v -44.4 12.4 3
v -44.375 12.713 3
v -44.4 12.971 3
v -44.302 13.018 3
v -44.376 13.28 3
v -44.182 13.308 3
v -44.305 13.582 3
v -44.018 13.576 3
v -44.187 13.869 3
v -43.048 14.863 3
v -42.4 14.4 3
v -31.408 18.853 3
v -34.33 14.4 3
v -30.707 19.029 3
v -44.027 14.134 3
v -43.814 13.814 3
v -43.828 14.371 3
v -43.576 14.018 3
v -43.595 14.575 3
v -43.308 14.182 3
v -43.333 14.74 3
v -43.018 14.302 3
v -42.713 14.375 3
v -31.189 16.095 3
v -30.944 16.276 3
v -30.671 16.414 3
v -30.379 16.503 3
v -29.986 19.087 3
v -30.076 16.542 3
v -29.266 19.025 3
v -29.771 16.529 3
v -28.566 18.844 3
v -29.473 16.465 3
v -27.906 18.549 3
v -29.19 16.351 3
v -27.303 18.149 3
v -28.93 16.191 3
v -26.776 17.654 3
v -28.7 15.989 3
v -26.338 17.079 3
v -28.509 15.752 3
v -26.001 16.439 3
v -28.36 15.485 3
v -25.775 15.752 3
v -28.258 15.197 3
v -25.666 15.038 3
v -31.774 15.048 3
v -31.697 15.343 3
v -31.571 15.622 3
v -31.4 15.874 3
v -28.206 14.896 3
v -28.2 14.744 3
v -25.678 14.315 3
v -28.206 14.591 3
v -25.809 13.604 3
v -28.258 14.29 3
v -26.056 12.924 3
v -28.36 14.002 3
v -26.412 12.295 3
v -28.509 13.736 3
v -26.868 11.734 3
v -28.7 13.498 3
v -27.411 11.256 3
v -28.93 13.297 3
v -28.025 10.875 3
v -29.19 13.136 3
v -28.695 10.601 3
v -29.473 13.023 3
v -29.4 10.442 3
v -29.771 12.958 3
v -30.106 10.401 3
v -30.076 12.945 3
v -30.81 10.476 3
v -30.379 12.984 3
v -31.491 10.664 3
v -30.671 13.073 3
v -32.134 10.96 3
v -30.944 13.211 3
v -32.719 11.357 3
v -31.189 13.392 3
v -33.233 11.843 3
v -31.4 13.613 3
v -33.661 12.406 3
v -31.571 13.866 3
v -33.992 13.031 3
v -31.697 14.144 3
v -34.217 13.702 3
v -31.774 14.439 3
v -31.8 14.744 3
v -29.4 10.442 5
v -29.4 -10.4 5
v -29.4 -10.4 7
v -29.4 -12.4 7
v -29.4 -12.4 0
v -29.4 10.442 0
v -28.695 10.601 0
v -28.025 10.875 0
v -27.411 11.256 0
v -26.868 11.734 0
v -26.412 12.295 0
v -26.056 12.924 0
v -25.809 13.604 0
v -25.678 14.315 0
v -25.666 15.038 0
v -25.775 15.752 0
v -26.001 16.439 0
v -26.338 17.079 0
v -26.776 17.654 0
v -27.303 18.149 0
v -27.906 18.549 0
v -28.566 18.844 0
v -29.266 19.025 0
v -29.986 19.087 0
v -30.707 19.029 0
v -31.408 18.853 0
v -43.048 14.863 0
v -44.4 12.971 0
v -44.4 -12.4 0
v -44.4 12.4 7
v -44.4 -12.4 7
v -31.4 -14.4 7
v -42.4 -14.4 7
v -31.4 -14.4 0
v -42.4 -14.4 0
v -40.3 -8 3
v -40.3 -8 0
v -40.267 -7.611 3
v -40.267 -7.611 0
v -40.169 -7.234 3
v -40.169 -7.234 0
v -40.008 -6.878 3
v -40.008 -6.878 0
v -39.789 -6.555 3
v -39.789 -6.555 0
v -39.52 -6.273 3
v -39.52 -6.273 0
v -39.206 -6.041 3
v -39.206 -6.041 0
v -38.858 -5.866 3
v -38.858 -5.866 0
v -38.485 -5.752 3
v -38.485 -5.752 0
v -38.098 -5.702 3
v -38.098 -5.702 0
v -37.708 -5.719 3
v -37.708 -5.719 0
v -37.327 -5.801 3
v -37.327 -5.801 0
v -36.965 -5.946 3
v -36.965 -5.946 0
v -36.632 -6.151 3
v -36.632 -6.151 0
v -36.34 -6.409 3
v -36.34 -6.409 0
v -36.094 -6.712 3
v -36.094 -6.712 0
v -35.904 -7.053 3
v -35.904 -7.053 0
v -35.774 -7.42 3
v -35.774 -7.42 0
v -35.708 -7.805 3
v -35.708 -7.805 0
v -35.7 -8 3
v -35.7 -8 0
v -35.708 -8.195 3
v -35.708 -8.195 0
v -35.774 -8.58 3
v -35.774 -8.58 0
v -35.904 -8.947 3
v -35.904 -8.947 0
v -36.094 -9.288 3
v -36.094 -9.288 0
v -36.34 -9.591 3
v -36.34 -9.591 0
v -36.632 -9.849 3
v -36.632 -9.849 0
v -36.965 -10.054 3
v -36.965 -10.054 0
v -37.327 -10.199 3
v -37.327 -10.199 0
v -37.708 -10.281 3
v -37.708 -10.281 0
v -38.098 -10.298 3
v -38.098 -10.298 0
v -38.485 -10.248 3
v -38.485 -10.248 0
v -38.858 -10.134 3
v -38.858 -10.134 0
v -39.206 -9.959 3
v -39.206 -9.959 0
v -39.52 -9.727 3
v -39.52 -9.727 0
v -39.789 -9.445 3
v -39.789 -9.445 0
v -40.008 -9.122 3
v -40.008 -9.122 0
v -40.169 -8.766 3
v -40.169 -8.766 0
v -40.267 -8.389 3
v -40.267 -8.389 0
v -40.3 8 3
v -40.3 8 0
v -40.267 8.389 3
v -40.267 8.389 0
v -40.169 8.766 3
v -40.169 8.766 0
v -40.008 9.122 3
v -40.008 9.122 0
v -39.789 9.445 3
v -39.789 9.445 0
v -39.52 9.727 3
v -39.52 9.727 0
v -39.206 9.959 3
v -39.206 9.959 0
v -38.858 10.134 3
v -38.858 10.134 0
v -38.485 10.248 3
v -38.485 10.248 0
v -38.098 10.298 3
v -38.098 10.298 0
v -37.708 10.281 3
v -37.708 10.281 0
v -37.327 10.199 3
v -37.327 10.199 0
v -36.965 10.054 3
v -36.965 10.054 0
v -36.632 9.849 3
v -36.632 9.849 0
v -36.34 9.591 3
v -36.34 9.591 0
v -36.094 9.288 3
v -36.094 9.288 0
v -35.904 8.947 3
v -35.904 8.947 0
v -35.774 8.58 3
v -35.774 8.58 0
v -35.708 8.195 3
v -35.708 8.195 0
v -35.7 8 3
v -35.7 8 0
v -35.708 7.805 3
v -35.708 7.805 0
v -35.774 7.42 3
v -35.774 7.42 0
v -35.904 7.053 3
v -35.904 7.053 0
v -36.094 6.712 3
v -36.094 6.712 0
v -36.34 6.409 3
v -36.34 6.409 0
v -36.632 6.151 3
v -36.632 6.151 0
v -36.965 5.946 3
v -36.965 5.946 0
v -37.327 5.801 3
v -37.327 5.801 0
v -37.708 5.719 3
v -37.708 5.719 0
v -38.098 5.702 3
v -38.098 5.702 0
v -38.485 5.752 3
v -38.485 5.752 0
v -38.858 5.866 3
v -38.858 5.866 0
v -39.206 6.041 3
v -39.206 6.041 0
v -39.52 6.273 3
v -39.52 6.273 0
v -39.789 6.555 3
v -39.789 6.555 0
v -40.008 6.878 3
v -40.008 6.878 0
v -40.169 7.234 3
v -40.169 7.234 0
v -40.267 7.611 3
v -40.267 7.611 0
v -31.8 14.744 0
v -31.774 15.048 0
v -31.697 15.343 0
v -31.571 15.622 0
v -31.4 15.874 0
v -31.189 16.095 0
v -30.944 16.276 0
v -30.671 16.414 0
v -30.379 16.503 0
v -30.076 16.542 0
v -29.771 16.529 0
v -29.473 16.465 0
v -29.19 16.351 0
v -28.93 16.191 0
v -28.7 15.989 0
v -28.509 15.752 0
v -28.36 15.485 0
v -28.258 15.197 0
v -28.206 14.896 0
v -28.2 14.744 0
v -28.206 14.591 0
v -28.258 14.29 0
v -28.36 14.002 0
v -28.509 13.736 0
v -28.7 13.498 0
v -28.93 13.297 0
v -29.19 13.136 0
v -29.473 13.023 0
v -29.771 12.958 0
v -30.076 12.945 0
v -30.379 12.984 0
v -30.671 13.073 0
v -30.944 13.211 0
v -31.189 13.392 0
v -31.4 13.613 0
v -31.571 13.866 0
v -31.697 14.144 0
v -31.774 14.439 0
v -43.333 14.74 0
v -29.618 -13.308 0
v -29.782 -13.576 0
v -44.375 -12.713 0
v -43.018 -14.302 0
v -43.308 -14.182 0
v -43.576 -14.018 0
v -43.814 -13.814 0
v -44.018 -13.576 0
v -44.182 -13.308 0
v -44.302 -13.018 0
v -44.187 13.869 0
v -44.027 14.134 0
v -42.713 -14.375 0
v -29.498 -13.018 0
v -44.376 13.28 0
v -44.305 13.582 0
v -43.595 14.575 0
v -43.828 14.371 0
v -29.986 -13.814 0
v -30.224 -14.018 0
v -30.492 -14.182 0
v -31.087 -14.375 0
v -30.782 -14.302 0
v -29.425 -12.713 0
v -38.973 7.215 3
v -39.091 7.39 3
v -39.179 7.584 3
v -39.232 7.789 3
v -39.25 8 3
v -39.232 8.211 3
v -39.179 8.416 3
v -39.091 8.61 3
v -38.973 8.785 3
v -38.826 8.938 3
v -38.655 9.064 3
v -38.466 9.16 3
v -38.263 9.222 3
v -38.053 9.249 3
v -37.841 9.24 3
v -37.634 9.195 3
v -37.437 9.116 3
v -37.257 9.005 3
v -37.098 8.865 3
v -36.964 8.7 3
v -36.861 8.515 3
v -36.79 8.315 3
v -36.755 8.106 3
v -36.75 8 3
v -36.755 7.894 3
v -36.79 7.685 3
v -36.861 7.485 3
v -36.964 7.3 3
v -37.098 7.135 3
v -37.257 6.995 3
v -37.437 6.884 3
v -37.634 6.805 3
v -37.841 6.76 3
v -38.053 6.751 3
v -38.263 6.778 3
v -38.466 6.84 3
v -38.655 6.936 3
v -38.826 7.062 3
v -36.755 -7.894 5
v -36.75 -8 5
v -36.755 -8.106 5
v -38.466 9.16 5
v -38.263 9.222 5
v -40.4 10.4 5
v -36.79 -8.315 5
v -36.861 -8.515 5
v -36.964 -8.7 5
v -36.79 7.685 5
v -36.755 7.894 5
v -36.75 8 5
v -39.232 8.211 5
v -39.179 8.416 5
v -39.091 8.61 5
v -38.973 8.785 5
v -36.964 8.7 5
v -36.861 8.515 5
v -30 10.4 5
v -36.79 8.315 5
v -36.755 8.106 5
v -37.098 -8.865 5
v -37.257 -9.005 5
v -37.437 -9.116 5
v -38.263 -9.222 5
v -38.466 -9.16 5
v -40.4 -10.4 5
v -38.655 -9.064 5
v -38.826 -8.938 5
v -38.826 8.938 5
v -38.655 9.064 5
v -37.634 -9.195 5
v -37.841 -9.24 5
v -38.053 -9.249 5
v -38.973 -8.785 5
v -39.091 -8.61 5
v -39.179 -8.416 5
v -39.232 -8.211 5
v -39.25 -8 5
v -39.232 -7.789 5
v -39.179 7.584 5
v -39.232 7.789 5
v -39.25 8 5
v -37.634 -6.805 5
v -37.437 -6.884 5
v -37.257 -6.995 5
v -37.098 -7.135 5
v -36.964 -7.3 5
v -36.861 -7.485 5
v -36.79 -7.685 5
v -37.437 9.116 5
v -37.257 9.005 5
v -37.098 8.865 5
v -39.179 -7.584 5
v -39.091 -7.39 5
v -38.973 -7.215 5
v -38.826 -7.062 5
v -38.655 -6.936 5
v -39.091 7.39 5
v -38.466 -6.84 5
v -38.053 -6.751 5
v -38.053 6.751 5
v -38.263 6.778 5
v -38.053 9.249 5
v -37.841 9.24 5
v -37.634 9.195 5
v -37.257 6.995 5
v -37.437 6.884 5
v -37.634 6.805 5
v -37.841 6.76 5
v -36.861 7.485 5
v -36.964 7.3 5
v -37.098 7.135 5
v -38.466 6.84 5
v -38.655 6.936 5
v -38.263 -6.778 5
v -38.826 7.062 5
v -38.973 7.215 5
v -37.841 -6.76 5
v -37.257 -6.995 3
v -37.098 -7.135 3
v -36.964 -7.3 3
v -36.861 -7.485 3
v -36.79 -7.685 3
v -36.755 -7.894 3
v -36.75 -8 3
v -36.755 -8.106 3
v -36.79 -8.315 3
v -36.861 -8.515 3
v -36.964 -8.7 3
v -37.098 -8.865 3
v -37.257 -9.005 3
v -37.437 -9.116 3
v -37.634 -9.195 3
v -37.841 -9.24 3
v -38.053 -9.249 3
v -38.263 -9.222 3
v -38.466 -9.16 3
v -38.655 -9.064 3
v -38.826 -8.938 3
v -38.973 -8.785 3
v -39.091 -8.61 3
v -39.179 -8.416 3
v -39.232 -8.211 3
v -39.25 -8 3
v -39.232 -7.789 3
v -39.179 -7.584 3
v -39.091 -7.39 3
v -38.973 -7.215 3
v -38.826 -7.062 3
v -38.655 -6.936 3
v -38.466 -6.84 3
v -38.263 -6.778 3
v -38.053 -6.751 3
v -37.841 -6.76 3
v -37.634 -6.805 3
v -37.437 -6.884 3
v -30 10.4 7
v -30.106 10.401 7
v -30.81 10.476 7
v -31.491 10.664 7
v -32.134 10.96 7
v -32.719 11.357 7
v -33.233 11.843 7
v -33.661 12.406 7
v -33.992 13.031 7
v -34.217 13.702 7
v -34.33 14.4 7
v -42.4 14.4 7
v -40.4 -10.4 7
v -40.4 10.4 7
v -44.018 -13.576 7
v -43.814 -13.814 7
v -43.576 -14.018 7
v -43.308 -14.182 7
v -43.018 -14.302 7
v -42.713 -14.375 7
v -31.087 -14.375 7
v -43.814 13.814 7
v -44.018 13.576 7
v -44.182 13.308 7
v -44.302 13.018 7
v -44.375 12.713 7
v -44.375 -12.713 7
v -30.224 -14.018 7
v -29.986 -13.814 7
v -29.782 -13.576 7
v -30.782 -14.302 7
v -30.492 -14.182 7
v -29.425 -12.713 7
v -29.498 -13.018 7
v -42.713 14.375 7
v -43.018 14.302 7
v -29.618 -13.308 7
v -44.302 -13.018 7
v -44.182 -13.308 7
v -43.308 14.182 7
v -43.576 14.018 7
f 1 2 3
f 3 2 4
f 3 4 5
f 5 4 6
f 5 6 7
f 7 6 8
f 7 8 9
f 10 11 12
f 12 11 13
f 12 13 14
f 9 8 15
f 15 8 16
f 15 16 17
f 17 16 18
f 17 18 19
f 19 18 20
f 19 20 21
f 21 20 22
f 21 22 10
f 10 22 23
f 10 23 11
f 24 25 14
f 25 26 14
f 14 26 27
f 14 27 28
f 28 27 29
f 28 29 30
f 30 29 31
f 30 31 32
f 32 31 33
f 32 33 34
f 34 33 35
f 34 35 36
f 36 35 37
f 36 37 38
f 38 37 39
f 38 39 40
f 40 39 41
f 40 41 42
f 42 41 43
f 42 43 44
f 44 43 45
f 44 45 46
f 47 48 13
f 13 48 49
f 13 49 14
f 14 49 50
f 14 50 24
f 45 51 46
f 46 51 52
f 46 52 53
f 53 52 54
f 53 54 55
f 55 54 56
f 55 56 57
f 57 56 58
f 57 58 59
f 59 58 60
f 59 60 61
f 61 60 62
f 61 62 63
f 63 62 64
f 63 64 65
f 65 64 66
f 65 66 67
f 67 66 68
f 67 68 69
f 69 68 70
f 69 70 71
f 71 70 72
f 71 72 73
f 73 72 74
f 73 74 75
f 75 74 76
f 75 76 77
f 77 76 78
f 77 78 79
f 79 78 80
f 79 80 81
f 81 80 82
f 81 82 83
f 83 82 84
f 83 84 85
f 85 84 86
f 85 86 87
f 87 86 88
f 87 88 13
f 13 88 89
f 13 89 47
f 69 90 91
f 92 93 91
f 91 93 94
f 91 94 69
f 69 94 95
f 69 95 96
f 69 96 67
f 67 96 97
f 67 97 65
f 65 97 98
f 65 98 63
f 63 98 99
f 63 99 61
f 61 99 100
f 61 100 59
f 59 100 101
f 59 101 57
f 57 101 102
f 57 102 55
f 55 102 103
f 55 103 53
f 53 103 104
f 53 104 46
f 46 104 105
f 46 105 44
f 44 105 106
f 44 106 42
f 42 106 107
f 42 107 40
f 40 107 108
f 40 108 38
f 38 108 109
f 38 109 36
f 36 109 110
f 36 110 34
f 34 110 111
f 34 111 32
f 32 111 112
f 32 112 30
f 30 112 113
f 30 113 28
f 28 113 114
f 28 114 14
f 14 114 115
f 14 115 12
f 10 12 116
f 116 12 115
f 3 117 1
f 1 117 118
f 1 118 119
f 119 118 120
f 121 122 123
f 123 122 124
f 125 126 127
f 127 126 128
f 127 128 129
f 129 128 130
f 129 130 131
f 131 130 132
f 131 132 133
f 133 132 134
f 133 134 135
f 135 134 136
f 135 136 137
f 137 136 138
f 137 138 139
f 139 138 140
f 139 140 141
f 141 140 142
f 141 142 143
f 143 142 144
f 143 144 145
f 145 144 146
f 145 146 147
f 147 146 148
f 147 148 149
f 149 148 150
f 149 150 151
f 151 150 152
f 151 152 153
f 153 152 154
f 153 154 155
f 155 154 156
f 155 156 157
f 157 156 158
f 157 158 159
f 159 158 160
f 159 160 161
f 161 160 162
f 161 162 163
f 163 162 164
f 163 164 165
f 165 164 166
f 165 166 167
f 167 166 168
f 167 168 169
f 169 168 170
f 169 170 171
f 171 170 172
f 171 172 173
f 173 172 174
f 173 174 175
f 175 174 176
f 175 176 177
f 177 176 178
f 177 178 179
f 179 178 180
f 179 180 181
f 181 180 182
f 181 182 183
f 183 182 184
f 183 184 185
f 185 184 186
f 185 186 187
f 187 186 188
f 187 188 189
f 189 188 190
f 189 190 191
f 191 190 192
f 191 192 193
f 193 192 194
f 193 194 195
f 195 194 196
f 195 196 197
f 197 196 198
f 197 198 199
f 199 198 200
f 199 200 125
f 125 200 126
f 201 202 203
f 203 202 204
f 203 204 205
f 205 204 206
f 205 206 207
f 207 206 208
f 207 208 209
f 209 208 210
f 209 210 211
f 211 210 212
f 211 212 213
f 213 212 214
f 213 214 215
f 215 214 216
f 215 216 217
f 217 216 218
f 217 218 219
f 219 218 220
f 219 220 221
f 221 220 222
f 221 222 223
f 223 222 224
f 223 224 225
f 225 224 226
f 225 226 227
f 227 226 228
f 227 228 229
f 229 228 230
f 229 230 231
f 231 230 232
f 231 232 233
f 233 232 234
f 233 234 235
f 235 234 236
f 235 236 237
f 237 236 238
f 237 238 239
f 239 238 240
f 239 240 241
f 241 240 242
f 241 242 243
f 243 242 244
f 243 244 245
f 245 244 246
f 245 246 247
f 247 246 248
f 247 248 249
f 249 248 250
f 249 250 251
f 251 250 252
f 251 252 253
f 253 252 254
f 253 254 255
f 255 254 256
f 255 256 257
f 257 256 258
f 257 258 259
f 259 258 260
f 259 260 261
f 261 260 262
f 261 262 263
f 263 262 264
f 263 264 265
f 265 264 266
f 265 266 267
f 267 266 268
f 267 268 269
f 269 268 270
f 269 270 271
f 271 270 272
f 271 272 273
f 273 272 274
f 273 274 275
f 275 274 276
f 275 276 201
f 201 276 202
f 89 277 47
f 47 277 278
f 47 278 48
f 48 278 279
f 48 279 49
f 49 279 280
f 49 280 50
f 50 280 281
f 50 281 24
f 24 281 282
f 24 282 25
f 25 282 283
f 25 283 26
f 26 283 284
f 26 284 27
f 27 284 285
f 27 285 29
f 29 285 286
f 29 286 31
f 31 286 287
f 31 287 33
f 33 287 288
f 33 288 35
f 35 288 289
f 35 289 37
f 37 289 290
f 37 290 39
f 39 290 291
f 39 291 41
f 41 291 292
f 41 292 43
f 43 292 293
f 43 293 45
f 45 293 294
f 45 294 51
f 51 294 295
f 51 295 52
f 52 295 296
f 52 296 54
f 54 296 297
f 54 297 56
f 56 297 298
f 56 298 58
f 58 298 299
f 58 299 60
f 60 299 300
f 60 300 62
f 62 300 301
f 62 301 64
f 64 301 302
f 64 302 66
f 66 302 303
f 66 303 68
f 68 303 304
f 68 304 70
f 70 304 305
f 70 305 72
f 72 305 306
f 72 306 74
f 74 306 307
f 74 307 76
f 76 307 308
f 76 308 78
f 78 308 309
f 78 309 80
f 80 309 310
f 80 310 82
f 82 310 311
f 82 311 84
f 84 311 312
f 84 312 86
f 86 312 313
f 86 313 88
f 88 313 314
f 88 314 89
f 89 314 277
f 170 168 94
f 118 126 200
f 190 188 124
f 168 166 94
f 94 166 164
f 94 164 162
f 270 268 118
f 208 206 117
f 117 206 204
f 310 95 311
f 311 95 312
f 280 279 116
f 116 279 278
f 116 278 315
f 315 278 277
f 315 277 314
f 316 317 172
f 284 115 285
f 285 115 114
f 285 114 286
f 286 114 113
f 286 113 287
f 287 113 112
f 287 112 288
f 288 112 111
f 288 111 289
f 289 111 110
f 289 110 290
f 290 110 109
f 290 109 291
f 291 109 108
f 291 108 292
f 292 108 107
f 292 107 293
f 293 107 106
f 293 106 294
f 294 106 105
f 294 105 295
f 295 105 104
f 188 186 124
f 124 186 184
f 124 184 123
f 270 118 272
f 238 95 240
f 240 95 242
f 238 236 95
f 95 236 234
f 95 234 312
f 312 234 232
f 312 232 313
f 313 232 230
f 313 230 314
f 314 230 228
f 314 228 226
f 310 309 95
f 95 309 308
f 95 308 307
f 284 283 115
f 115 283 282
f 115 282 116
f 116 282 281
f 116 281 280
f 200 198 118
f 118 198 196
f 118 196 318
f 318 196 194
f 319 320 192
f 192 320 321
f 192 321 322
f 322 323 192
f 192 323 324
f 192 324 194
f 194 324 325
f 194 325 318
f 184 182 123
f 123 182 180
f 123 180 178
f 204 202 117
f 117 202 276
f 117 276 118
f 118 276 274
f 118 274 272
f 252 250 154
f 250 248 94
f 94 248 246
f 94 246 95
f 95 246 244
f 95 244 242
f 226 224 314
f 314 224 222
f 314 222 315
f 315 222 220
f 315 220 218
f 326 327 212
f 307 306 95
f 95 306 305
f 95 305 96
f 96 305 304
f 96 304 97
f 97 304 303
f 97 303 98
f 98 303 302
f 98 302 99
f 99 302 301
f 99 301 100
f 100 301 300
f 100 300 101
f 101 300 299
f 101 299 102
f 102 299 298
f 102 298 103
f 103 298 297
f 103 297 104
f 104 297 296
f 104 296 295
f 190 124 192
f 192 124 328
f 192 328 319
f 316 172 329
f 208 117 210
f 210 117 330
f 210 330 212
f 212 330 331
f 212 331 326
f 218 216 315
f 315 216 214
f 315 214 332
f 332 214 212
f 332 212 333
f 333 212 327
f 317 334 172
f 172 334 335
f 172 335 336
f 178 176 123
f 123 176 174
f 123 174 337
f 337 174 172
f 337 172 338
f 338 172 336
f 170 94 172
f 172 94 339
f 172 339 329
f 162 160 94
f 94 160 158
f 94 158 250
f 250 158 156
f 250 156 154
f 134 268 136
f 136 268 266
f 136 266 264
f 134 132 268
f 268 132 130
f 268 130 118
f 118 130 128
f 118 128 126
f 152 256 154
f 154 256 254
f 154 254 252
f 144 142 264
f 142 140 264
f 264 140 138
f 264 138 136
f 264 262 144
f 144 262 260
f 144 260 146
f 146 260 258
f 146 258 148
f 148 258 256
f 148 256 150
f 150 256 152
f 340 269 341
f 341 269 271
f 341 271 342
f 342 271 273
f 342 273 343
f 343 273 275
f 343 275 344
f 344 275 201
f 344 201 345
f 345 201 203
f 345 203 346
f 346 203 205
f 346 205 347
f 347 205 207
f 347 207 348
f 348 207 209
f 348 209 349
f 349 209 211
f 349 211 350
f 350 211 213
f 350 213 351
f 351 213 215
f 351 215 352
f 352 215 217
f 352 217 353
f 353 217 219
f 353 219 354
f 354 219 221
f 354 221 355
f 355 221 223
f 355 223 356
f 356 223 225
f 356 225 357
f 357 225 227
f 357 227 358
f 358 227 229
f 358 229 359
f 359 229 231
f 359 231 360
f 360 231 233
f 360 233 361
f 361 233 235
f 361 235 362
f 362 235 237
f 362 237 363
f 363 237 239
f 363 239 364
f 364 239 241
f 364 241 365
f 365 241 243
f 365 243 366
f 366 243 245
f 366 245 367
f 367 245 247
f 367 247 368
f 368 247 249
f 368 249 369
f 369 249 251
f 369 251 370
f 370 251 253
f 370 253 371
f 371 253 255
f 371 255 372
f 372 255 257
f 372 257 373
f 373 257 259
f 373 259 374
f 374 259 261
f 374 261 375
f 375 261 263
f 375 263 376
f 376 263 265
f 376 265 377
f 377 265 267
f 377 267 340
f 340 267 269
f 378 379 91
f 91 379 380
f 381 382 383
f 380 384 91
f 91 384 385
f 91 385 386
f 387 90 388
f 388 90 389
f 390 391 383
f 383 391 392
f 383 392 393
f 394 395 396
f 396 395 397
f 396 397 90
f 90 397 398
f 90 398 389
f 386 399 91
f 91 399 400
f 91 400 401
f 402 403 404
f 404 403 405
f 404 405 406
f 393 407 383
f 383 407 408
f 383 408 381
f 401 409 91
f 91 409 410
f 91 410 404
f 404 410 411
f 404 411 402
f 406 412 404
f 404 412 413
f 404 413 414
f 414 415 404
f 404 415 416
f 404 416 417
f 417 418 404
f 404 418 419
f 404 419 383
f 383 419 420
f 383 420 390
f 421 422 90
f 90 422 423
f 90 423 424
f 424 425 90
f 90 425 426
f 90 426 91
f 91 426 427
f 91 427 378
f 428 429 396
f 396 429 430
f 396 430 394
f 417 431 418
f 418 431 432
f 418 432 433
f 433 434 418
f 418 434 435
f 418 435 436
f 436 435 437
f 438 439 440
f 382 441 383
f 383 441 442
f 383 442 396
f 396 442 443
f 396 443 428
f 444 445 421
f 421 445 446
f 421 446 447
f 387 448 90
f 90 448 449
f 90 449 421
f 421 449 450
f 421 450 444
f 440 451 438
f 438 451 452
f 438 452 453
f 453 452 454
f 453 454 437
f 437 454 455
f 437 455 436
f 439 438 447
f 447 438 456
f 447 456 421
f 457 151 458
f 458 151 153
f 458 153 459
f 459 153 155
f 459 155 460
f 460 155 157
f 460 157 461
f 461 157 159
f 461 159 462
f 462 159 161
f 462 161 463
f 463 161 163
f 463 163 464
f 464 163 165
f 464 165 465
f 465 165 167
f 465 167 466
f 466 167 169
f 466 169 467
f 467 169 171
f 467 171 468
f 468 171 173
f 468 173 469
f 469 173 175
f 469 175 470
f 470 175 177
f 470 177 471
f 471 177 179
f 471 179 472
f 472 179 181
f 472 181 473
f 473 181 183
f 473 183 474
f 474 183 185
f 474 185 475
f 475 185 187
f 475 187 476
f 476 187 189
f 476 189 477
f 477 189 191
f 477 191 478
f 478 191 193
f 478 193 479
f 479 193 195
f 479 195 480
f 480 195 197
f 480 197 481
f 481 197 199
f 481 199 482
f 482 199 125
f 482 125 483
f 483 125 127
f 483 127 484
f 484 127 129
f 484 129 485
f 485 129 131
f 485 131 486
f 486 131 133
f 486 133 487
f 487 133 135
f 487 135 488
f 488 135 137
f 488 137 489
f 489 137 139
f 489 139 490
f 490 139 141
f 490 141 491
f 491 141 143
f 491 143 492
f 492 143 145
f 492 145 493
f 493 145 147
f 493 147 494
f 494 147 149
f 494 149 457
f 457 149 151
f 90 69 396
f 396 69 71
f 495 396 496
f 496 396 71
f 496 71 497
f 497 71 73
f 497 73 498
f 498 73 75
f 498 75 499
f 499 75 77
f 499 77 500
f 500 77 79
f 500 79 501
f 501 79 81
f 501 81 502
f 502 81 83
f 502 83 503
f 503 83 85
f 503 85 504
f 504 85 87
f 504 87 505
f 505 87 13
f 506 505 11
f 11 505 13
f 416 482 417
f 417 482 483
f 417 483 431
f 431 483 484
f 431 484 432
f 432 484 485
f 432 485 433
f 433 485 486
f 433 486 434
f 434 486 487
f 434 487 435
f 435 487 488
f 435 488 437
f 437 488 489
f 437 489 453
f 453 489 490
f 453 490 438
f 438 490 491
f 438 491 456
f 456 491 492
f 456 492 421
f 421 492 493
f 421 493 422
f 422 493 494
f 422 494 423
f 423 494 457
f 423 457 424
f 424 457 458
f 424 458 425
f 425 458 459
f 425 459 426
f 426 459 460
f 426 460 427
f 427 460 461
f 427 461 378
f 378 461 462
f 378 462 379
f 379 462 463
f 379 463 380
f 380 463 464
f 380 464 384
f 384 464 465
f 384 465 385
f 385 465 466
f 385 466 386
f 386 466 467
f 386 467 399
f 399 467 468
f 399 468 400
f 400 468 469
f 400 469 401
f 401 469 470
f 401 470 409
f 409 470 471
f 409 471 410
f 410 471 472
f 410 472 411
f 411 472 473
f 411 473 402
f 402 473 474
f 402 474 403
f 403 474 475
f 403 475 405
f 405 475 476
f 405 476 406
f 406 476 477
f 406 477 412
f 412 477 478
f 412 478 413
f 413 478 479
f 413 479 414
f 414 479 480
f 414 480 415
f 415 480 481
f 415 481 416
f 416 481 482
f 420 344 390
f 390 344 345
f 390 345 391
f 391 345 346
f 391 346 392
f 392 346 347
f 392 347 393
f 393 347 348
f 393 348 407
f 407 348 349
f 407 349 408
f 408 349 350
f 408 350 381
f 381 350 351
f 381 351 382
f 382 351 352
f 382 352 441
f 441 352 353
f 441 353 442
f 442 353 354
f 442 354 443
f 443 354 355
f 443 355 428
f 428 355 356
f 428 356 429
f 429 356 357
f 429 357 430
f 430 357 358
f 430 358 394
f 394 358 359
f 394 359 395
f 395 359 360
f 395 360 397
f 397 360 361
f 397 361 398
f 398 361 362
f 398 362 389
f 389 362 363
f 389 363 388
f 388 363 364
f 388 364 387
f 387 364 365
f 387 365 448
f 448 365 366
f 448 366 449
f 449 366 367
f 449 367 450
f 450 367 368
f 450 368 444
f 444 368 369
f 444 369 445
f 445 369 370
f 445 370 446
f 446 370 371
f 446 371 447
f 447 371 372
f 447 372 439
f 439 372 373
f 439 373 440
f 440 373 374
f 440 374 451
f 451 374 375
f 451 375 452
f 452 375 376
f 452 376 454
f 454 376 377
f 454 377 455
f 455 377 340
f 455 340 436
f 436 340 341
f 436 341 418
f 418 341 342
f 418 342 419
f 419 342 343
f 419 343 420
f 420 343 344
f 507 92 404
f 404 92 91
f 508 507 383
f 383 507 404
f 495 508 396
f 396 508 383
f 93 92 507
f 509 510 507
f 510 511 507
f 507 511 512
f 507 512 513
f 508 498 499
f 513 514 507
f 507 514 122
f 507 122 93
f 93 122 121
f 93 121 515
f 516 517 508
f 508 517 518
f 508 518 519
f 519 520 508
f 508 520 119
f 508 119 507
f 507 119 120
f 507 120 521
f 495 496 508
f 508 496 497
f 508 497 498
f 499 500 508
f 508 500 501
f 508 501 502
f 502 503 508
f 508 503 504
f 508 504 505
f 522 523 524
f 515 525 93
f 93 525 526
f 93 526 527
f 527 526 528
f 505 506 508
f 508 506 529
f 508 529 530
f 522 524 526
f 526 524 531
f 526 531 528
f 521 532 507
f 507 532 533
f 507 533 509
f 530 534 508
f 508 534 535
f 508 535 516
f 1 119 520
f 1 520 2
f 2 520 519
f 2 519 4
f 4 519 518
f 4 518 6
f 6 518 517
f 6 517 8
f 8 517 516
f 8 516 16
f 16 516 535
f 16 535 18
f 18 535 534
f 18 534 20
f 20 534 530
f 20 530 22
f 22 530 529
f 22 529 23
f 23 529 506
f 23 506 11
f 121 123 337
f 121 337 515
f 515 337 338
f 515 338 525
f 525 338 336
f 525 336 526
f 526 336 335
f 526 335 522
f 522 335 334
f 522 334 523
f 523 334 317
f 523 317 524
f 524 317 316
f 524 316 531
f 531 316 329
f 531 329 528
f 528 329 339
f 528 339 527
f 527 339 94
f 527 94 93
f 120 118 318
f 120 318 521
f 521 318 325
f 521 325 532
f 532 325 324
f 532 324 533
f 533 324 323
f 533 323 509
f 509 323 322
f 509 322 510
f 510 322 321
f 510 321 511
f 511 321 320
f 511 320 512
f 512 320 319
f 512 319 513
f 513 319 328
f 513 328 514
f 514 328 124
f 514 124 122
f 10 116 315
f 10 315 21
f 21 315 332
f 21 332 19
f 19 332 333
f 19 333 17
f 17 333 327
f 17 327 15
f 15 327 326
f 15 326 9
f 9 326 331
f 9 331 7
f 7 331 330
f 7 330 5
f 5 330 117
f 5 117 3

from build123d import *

# Parameters (mm, degrees)
SKETCH1_R           = 1.8
SKETCH1_R_2         = 2.3
BOSS_EXTRUDE1_DEPTH = 3
BOSS_EXTRUDE2_START = 3
SKETCH1_4_R         = 1.25
BOSS_EXTRUDE2_DEPTH = 2
BOSS_EXTRUDE3_START = 5
BOSS_EXTRUDE3_DEPTH = 2
FILLET1_R           = 2
FILLET2_R           = 2


with BuildPart() as part:
    # Sketch1 → Boss-Extrude1 (new body)
    with BuildSketch(Plane.XY):
        with BuildLine():
            Line((-44.4, 14.4), (-44.4, -14.4))
            Line((-44.4, -14.4), (-29.4, -14.4))
            Line((-29.4, -14.4), (-29.4, 10.441638902))
            ThreePointArc((-29.4, 10.441638902), (-25.775066243, 15.752493555), (-31.408334135, 18.852753985))
            Line((-31.408334135, 18.852753985), (-44.4, 14.4))
        make_face()
        with Locations((-30, 14.7437)):
            Circle(SKETCH1_R, mode=Mode.SUBTRACT)
        with Locations((-38, 8)):
            Circle(SKETCH1_R_2, mode=Mode.SUBTRACT)
        with Locations((-38, -8)):
            Circle(SKETCH1_R_2, mode=Mode.SUBTRACT)
    extrude(amount=BOSS_EXTRUDE1_DEPTH)

    # Sketch1<4> → Boss-Extrude2 (add)
    with BuildSketch(Plane.XY.offset(BOSS_EXTRUDE2_START)):
        with BuildLine():
            Line((-29.4, -14.4), (-29.4, 10.441638902))
            ThreePointArc((-29.4, 10.441638902), (-32.719472632, 11.356636627), (-34.330080831, 14.4))
            Line((-34.330080831, 14.4), (-44.4, 14.4))
            Line((-44.4, 14.4), (-44.4, -14.4))
            Line((-44.4, -14.4), (-29.4, -14.4))
        make_face()
        with Locations((-38, -8)):
            Circle(SKETCH1_4_R, mode=Mode.SUBTRACT)
        with Locations((-38, 8)):
            Circle(SKETCH1_4_R, mode=Mode.SUBTRACT)
    extrude(amount=BOSS_EXTRUDE2_DEPTH)

    # Sketch1<5> → Boss-Extrude3 (add)
    with BuildSketch(Plane.XY.offset(BOSS_EXTRUDE3_START)):
        with BuildLine():
            Line((-29.4, -14.4), (-29.4, -10.4))
            Line((-29.4, -10.4), (-40.4, -10.4))
            Line((-40.4, -10.4), (-40.4, 10.4))
            Line((-40.4, 10.4), (-30, 10.4))
            ThreePointArc((-30, 10.4), (-32.947439567, 11.553037108), (-34.330080831, 14.4))
            Line((-34.330080831, 14.4), (-44.4, 14.4))
            Line((-44.4, 14.4), (-44.4, -14.4))
            Line((-44.4, -14.4), (-29.4, -14.4))
        make_face()
    extrude(amount=BOSS_EXTRUDE3_DEPTH)

    # Fillet1
    fillet1_edges = [part.edges().sort_by_distance(p)[0] for p in [
        (-29.4, -14.4, 3.5),
        (-44.4, -14.4, 3.5),
        (-44.4, 14.4, 5),
    ]]
    fillet(fillet1_edges, radius=FILLET1_R)

    # Fillet2
    fillet2_edges = [part.edges().sort_by_distance(p)[0] for p in [
        (-44.4, 14.4, 1.5),
    ]]
    fillet(fillet2_edges, radius=FILLET2_R)


solid = part.part
